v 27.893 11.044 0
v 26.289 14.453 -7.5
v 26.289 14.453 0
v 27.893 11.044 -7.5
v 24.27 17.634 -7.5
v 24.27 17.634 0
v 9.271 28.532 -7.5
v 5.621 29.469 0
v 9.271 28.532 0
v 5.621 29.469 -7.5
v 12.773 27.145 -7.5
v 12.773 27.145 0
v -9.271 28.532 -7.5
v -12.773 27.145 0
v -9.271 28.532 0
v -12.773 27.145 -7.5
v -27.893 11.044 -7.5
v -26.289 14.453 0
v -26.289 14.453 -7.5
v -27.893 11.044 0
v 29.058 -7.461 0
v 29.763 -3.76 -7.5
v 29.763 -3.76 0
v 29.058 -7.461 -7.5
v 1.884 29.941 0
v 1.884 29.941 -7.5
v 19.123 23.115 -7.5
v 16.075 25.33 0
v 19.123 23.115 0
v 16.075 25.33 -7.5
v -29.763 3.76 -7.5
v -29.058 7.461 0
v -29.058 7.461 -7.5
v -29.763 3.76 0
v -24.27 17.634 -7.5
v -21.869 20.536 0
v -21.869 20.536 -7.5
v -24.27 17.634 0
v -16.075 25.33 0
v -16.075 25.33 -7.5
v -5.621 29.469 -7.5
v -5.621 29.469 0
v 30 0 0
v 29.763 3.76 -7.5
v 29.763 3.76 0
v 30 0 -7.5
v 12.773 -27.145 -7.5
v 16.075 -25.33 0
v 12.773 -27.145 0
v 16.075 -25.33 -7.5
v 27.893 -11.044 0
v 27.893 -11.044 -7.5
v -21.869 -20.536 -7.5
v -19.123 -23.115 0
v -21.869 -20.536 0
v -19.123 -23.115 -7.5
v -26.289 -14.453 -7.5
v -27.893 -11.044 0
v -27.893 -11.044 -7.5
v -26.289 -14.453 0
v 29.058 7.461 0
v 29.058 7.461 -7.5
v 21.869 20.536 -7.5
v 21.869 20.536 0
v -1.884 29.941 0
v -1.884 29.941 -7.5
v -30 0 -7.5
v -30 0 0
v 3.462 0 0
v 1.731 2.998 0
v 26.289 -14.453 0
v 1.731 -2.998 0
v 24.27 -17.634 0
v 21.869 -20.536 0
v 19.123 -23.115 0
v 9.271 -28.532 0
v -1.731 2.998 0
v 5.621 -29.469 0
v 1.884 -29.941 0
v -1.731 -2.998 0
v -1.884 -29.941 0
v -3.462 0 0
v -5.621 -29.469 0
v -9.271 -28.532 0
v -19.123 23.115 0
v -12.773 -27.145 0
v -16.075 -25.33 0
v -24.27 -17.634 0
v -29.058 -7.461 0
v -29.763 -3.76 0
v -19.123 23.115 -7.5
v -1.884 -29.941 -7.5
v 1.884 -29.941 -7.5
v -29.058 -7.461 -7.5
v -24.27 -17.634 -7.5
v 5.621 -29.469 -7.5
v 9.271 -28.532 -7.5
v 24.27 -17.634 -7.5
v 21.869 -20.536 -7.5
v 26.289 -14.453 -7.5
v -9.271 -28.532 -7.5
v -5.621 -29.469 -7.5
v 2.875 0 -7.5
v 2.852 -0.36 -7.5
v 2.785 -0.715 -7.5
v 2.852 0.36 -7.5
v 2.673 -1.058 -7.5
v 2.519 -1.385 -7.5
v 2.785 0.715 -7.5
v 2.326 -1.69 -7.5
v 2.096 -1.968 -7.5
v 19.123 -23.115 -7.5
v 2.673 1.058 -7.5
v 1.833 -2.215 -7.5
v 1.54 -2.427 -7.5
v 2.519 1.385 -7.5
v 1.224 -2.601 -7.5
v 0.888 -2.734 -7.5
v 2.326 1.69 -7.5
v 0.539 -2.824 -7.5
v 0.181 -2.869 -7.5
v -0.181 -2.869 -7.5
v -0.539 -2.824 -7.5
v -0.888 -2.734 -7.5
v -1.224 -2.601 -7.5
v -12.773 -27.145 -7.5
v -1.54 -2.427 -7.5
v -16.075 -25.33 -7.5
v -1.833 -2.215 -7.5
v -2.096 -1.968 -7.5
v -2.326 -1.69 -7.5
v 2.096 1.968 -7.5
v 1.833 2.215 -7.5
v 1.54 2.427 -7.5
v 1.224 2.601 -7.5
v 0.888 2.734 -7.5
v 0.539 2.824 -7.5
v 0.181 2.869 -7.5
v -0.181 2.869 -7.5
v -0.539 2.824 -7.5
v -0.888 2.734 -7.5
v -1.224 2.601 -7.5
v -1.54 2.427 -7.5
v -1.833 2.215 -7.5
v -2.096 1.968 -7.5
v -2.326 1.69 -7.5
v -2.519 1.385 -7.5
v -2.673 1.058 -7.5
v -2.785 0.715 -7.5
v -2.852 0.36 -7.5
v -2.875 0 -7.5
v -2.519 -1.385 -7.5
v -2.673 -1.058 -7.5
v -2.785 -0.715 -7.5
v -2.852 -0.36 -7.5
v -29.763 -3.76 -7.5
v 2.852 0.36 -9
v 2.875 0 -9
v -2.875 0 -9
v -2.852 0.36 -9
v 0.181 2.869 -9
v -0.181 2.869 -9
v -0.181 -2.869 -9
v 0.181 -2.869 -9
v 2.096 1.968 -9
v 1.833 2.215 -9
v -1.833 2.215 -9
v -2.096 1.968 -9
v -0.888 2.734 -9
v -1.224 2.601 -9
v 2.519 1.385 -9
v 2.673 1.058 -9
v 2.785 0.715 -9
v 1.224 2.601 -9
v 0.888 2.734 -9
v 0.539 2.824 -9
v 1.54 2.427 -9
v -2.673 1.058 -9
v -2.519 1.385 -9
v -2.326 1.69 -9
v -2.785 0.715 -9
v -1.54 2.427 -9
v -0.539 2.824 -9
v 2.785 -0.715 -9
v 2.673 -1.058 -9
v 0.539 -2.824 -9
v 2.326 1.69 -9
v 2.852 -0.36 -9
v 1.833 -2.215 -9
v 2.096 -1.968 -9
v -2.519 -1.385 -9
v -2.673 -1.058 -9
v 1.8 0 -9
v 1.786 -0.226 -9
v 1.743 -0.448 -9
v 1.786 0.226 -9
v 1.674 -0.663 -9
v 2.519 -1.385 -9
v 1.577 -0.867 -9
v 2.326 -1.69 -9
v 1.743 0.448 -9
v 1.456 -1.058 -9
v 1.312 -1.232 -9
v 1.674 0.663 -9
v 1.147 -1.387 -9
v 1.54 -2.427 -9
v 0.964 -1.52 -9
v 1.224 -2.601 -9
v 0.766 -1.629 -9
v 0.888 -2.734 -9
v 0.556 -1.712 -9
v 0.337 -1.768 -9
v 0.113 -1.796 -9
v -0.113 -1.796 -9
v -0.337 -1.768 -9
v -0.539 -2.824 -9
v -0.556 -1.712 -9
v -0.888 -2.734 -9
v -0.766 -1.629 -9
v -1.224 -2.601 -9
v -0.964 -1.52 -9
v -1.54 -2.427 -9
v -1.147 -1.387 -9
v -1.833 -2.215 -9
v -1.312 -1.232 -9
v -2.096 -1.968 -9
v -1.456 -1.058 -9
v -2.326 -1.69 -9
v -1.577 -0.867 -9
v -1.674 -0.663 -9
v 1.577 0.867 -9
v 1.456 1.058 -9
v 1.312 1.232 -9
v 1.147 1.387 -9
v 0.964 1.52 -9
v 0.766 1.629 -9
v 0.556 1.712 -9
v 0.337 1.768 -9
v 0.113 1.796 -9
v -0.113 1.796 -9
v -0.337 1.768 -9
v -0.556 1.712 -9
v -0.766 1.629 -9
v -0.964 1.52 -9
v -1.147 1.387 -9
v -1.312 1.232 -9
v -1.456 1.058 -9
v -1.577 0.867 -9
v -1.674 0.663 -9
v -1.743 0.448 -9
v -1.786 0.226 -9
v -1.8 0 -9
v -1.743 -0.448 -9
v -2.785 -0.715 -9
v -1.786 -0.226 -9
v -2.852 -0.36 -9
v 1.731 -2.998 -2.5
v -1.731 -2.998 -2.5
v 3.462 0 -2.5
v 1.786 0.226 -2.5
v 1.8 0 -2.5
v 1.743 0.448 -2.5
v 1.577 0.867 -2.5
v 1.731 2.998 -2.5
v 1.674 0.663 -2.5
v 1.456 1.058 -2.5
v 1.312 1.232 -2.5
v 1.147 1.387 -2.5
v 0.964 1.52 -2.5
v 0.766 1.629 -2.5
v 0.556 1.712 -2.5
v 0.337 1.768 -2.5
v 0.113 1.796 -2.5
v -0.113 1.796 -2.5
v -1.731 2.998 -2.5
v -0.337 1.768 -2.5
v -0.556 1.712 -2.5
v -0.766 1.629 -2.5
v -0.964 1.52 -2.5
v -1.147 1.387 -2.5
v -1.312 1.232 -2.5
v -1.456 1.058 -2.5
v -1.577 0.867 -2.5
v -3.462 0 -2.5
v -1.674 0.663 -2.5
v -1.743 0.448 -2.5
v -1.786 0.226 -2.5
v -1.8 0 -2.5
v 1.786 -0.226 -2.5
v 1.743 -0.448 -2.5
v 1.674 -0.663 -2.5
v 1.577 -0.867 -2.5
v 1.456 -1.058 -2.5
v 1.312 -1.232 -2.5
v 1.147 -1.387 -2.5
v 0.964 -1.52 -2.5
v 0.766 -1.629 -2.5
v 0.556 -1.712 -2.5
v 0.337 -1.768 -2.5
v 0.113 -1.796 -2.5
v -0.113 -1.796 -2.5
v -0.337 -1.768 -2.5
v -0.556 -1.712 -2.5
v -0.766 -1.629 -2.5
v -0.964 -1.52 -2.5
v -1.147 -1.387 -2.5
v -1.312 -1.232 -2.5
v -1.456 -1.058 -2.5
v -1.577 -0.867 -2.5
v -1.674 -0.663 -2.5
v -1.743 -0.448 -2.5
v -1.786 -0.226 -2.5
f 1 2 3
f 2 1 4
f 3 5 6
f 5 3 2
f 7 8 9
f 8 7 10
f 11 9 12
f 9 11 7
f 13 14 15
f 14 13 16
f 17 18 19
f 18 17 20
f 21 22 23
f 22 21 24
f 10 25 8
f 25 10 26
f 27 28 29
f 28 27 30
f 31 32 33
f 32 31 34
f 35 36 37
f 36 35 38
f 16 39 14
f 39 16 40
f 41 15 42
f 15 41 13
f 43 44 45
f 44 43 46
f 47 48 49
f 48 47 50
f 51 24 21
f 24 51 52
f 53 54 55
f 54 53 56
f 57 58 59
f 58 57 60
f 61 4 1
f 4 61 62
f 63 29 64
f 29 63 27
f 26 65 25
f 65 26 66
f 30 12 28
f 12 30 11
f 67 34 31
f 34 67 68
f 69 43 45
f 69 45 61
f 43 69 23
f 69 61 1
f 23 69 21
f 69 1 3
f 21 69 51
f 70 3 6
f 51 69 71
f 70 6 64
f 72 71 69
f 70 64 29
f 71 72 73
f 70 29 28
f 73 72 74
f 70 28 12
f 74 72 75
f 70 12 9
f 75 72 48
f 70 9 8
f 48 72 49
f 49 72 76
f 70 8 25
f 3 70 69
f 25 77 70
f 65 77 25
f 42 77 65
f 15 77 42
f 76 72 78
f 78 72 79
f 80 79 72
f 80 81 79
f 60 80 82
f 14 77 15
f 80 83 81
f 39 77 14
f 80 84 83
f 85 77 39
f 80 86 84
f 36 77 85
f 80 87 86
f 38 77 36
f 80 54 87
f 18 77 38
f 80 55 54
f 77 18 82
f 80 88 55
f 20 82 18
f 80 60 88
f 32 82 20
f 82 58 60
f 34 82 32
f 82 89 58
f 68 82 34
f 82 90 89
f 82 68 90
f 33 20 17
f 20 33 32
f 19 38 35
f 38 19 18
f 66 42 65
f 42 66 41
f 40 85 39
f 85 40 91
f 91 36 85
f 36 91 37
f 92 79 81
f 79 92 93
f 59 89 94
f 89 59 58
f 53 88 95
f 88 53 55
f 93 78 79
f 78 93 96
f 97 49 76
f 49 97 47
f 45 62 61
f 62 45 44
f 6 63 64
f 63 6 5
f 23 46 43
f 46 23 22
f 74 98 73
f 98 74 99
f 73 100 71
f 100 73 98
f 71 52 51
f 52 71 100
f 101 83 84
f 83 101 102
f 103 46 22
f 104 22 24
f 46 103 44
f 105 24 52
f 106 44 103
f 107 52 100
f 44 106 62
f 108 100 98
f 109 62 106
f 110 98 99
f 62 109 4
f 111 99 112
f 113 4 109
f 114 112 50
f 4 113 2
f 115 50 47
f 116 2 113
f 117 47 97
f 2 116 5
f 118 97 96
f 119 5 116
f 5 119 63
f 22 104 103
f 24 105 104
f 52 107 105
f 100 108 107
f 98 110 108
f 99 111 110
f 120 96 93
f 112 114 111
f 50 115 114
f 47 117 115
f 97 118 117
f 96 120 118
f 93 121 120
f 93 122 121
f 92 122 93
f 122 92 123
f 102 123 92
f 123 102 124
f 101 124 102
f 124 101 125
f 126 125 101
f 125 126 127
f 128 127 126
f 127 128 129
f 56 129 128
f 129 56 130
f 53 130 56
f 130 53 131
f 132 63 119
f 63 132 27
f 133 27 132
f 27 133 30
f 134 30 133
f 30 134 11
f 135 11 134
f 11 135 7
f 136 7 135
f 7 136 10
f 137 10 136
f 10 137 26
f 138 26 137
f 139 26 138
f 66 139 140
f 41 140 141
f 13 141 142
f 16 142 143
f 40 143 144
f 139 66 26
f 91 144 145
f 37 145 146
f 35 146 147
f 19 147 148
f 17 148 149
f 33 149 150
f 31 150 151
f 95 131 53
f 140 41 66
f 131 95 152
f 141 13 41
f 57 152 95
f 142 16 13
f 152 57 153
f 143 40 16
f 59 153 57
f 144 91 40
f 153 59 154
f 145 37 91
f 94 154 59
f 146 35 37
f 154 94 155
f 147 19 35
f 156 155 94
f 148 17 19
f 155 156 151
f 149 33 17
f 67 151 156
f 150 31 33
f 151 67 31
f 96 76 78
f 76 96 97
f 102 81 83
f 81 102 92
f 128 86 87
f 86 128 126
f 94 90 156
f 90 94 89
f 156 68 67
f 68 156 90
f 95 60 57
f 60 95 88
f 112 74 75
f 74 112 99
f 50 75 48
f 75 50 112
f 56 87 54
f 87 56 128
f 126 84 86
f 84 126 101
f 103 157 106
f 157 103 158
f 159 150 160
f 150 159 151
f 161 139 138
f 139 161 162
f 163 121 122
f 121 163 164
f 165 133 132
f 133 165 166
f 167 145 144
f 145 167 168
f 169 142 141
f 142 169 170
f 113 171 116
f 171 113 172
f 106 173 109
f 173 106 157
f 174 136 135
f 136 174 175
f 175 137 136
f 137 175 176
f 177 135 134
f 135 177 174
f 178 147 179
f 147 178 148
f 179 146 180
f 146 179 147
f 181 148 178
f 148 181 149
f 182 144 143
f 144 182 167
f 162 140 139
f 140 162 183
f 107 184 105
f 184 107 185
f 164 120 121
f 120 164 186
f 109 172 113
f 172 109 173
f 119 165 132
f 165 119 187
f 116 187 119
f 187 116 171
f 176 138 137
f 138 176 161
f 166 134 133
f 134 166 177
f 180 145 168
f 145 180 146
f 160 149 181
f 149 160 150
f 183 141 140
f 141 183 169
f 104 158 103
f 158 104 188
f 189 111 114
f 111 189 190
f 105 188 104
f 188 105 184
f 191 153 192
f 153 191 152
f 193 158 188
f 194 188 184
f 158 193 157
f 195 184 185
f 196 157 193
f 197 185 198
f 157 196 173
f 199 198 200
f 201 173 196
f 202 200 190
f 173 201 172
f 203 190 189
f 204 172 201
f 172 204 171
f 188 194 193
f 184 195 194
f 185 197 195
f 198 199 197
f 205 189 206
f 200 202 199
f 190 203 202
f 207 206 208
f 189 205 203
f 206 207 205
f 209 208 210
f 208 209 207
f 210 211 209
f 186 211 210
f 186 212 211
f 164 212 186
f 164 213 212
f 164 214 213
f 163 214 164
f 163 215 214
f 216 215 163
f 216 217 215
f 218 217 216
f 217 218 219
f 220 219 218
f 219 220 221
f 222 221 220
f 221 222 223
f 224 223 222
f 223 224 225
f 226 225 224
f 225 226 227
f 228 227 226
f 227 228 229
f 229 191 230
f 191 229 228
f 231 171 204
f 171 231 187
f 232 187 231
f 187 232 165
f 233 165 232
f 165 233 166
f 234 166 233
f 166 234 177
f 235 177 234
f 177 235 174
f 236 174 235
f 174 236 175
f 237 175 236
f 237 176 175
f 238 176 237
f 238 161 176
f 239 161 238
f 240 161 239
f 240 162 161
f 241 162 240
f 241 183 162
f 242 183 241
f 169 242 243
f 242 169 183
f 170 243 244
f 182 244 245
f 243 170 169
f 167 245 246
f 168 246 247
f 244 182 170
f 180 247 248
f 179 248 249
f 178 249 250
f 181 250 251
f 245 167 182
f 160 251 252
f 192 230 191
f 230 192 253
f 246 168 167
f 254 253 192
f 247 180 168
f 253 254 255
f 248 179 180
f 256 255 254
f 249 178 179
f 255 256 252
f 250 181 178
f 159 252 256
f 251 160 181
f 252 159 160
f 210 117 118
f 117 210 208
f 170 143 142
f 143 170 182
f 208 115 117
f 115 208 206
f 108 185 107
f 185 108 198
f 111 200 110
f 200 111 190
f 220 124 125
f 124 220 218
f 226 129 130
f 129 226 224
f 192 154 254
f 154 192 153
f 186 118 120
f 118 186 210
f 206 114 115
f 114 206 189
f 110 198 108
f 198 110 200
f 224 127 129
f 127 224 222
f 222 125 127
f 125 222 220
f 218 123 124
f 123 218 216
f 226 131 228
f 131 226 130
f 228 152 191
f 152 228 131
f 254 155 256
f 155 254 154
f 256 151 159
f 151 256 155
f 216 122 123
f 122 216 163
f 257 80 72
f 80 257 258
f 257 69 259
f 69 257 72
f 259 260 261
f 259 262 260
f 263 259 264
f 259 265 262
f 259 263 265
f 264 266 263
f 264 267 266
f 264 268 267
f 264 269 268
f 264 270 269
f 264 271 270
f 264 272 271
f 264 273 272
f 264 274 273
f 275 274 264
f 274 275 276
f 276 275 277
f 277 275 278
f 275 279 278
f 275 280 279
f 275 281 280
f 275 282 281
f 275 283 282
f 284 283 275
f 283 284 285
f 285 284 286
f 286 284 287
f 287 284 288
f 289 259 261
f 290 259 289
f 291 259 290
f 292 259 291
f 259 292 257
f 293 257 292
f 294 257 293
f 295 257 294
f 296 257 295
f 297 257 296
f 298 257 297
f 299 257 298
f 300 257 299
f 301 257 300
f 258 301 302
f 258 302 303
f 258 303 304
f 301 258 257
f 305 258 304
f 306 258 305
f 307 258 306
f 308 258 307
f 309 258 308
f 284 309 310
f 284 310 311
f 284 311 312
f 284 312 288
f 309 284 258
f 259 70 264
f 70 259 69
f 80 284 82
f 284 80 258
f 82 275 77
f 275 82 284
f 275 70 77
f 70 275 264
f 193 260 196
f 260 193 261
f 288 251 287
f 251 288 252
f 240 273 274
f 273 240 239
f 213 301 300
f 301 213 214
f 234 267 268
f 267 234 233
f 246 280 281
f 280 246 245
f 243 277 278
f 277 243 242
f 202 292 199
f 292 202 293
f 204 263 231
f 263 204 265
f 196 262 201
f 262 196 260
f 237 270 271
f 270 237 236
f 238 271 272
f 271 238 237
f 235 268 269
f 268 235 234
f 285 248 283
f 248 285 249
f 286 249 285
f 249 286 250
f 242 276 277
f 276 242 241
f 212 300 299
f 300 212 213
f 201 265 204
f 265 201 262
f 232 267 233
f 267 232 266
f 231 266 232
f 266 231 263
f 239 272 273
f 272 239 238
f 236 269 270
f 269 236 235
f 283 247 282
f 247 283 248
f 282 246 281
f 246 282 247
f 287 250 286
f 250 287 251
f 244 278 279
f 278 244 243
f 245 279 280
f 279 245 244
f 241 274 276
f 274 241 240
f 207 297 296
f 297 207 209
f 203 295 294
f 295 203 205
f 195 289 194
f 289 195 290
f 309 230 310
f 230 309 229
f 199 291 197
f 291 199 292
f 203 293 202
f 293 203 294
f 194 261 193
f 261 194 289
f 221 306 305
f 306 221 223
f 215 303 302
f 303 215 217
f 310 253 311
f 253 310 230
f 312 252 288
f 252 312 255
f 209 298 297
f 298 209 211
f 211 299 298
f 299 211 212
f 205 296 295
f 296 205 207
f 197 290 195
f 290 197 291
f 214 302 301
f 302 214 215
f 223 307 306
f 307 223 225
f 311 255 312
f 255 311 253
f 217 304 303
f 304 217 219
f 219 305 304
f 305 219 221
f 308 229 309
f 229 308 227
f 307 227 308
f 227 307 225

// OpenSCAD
$fn = 50;

difference() {
	union() {
		translate(v = [0, 0, -7.5]) {
			cylinder(h = 7.5, r = 30.0);
		}
		#translate(v = [0, 0, -9.0]) {
			cylinder(h = 9, r = 2.875);
		}
	}
	union() {
		translate(v = [0, 0, 0]) {
			rotate(a = [0, 0, 0]) {
				difference() {
					union() {
						translate(v = [0, 0, -2.5]) {
							linear_extrude(height = 2.5) {
								polygon(points = [[3.4619999999999997, 0.0], [1.7310000000000003, 2.9981799479017264], [-1.7309999999999992, 2.9981799479017264], [-3.4619999999999997, 4.2397272186481365e-16], [-1.7310000000000014, -2.998179947901726], [1.7309999999999977, -2.9981799479017277]]);
							}
						}
					}
					union();
				}
			}
		}
		#translate(v = [0, 0, -100.0]) {
			cylinder(h = 200, r = 1.8);
		}
	}
}
